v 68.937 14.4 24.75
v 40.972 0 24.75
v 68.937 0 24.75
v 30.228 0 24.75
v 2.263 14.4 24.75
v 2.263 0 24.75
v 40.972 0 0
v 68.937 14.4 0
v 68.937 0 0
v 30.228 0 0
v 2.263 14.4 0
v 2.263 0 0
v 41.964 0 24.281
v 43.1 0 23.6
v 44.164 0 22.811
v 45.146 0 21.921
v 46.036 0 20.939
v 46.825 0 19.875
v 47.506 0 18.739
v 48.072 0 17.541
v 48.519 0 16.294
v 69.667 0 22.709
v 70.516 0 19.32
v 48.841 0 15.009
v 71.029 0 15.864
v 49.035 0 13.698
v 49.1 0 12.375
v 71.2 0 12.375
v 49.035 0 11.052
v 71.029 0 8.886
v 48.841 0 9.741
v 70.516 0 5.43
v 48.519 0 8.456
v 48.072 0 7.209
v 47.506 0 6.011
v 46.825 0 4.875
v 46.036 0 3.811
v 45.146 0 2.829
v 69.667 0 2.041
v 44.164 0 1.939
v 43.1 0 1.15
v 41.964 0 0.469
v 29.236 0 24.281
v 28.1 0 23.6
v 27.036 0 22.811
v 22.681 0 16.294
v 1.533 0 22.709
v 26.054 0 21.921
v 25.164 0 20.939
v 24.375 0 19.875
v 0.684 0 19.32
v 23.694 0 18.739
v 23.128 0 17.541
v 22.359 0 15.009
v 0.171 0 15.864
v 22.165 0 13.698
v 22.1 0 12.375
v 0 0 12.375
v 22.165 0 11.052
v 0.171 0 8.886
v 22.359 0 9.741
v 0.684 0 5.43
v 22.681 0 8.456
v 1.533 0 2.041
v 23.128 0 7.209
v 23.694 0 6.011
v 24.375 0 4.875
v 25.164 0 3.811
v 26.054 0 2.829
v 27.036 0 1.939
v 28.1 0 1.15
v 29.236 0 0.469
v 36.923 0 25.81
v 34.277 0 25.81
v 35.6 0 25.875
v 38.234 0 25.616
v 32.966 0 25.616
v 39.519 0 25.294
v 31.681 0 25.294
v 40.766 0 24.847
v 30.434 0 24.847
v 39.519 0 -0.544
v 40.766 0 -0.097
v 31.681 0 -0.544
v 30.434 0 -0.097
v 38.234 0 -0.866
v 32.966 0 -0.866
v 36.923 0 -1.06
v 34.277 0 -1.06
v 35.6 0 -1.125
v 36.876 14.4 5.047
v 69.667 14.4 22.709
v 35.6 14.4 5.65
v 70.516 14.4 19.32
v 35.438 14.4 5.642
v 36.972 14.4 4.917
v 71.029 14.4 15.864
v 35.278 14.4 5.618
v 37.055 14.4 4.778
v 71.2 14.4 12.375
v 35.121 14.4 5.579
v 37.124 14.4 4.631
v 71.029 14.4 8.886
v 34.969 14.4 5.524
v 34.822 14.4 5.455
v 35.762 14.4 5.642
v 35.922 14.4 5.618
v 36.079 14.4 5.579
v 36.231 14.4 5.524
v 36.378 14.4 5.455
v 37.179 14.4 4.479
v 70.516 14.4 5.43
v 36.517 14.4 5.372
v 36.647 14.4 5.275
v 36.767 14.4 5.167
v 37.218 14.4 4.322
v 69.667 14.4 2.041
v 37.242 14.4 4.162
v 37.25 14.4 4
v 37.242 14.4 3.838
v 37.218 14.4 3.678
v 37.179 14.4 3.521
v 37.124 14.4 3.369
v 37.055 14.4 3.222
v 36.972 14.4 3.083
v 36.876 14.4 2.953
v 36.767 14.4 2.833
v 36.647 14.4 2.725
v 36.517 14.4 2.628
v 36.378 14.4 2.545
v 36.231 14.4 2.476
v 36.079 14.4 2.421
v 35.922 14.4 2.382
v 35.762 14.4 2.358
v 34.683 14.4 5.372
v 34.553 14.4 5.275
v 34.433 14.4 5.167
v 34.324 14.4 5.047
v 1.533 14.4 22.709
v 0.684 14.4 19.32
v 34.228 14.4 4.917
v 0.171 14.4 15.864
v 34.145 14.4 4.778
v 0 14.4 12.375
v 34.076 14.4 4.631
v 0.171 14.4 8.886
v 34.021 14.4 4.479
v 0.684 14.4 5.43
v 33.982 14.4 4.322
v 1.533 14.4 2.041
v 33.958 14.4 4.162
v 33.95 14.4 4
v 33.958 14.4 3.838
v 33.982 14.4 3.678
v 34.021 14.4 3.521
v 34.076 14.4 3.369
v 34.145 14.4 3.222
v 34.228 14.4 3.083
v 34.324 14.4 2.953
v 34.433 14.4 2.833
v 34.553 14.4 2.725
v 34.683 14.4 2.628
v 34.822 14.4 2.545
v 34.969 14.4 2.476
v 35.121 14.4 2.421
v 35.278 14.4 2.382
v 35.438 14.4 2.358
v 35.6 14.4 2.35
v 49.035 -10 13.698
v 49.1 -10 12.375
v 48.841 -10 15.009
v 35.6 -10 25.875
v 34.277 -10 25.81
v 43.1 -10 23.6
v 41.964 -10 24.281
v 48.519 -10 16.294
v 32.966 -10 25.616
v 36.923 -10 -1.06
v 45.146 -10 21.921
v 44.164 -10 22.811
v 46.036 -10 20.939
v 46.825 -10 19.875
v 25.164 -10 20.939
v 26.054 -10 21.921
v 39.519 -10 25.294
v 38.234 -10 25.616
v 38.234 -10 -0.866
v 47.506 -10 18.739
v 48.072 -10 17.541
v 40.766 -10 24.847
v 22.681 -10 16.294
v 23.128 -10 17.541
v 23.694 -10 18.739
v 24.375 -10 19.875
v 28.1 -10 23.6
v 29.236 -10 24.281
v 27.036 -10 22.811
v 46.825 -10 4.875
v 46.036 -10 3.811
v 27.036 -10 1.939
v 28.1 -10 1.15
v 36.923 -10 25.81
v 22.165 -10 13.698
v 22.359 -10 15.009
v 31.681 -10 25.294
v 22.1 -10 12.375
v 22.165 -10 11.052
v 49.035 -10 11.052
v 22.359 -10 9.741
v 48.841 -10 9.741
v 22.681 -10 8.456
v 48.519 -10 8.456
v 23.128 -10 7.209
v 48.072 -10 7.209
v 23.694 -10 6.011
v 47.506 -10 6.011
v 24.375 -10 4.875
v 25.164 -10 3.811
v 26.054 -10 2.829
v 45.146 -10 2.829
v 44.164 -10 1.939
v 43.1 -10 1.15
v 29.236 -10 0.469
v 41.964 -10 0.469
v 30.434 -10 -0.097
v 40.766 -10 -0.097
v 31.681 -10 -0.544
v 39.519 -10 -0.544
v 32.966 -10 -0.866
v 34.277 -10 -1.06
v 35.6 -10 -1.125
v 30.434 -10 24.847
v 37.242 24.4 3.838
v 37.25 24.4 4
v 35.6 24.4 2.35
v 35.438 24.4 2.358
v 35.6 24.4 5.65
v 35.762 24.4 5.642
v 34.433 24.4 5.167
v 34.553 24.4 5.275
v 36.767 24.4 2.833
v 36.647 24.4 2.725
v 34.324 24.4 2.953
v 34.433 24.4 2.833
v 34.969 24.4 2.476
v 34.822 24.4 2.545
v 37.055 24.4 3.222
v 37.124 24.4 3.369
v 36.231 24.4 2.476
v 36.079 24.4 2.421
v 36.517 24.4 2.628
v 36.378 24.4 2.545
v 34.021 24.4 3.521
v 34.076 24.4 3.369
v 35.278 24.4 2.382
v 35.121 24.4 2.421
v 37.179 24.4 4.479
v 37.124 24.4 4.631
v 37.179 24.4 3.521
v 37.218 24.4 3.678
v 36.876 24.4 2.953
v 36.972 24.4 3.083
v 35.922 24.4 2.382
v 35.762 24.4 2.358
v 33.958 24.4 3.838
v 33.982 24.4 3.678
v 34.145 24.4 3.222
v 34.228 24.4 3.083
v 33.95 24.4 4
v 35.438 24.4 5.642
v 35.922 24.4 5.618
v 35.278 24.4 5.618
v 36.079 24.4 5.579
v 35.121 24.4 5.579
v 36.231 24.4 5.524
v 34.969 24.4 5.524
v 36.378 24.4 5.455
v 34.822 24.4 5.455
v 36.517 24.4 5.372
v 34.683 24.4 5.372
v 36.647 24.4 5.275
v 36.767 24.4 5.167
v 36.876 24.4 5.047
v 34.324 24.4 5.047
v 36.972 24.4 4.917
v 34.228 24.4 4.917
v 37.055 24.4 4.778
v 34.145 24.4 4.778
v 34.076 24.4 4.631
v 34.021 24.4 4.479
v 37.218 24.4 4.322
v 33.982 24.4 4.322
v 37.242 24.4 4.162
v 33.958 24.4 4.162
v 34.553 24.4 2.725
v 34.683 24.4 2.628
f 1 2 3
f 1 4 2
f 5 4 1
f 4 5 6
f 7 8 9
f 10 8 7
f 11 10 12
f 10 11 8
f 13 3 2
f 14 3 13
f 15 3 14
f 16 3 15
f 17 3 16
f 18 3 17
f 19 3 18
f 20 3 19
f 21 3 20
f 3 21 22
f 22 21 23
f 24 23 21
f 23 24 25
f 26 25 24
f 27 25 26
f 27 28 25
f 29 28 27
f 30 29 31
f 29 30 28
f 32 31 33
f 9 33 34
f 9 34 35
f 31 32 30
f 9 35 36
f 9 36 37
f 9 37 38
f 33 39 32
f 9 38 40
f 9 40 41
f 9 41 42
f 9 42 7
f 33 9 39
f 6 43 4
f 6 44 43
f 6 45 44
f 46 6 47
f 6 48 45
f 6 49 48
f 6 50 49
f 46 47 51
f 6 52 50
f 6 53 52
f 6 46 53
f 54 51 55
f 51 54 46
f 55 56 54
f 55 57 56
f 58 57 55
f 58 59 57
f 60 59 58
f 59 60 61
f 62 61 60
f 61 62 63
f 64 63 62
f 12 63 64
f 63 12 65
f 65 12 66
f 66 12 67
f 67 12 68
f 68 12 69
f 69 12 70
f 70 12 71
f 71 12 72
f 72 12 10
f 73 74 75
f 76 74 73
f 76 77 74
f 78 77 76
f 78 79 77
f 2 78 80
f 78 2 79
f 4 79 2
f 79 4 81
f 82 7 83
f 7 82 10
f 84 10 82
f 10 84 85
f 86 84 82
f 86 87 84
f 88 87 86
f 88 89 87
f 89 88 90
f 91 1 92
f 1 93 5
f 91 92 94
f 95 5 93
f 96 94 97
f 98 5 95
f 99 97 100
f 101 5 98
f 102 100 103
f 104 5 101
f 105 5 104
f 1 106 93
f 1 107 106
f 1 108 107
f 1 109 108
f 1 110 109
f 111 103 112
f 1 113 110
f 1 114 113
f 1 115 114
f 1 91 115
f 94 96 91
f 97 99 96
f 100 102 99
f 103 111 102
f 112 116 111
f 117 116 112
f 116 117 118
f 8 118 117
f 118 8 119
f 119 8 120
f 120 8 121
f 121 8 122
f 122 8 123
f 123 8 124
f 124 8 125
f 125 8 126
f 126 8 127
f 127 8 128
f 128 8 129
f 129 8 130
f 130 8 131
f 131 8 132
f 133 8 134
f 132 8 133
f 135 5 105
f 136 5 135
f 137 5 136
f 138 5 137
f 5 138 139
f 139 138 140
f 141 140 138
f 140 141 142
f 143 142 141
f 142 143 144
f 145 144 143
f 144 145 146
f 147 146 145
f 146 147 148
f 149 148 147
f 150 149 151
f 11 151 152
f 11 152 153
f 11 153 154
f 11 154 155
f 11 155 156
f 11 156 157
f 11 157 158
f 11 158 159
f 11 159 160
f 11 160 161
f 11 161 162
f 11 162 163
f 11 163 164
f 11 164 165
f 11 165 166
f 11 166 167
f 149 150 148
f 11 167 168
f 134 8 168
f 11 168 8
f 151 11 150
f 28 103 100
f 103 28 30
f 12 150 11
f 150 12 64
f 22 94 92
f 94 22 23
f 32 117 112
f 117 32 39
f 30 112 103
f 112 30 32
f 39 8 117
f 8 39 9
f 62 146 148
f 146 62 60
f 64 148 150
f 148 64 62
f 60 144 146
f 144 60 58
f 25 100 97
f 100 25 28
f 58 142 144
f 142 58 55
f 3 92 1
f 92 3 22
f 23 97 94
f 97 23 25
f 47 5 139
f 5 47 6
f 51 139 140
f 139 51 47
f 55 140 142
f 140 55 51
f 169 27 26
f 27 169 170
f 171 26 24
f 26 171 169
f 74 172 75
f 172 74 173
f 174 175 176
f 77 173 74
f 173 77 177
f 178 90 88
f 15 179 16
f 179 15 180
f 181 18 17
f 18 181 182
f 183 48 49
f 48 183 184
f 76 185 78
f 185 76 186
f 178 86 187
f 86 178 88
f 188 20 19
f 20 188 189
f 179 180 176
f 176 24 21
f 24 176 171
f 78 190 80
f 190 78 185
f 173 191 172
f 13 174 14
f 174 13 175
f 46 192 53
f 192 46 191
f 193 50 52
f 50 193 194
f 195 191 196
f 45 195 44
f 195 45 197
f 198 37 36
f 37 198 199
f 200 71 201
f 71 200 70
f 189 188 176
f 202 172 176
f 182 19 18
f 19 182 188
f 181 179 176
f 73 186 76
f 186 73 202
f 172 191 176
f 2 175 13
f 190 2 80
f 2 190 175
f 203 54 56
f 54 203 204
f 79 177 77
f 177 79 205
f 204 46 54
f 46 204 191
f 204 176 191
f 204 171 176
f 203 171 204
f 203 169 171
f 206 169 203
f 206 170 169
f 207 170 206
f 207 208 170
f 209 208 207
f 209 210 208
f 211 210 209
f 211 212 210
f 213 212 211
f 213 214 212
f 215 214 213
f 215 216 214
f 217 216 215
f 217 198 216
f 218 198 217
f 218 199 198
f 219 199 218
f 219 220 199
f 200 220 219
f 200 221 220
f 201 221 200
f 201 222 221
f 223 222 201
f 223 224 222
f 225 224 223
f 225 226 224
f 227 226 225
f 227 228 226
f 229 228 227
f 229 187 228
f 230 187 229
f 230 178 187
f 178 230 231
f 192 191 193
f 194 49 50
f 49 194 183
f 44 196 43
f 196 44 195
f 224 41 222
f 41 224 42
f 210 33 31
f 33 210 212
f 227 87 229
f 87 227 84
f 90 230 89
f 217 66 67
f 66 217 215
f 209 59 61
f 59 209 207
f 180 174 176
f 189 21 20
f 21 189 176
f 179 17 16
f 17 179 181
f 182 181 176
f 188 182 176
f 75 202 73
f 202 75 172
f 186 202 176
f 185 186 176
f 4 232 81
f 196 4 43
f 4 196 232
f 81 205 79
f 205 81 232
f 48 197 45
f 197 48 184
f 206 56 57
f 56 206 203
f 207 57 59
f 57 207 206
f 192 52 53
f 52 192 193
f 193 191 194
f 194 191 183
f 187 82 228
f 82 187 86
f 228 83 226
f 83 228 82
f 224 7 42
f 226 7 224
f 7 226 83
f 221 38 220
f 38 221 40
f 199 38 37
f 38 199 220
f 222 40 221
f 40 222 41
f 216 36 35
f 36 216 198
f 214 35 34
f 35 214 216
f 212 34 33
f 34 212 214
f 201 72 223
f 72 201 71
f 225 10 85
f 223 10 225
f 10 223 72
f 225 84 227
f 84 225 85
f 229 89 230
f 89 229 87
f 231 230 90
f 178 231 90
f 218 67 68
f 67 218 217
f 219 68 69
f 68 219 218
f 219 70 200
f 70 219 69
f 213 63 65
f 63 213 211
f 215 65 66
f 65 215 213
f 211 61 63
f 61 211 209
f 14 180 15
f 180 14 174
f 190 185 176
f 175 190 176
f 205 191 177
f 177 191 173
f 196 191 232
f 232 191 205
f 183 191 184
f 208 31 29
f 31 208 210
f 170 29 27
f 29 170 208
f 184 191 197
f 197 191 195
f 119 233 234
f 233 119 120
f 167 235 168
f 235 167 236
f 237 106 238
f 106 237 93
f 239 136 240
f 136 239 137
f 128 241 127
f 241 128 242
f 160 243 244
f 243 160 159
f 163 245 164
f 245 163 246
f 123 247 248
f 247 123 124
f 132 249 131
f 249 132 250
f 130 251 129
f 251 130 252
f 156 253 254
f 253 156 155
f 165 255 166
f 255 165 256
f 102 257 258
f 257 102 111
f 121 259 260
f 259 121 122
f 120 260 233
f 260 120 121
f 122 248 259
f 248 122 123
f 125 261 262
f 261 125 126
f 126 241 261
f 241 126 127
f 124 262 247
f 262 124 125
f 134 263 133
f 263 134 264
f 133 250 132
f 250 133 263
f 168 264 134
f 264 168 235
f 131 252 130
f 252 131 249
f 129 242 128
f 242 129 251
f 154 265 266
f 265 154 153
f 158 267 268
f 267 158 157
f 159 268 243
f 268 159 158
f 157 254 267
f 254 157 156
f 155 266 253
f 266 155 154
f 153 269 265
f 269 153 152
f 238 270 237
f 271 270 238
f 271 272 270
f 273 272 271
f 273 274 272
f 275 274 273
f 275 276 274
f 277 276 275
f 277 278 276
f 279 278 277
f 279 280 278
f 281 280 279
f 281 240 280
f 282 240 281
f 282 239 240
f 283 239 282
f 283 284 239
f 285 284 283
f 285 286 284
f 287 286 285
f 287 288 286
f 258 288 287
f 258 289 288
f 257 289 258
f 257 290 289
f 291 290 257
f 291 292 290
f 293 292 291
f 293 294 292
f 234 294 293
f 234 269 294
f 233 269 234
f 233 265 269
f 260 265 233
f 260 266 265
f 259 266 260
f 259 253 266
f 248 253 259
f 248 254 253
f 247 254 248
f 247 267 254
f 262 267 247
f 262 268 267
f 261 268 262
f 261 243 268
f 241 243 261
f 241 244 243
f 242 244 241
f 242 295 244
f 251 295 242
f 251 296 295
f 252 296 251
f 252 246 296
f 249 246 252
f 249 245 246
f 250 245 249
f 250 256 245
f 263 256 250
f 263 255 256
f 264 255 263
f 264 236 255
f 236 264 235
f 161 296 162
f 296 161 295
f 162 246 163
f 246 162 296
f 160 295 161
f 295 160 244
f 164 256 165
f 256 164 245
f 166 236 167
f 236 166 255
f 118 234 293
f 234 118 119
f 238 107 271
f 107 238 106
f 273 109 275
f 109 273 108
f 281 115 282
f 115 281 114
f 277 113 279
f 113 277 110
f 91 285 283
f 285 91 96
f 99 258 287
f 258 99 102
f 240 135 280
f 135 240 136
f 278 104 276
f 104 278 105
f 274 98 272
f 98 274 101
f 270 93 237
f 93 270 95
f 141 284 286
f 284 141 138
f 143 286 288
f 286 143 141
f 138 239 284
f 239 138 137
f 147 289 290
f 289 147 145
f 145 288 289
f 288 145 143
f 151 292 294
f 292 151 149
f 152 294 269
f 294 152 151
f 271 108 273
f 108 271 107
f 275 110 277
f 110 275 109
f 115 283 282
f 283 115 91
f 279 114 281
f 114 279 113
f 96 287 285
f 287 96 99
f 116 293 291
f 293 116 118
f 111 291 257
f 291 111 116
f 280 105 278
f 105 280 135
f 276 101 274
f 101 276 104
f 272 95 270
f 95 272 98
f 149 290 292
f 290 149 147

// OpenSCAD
// A toggle switch ordered from https://www.sparkfun.com/products/11310

$fn = 64;

length = 71.2;
width = 14.4;
height = 24.75;

module camera() {
    intersection() {
        cube([length, width, height]);        
        translate([length/2, 0, height/2]) rotate([-90, 0, 0]) {
            cylinder(h = width, r = length/2);
        }
    }
}

module lens() {
    translate([length/2, 0, height/2]) rotate([90, 0, 0]) {
        cylinder(h = 10, r = 27/2);
    }
}

module cable() {
    translate([length/2, width, 4]) rotate([-90, 0, 0]) {
        cylinder(h = 10, r = 3.3/2);
    }
}

color("dimgrey") camera();
color("lightgrey") lens();
color("black") cable();
